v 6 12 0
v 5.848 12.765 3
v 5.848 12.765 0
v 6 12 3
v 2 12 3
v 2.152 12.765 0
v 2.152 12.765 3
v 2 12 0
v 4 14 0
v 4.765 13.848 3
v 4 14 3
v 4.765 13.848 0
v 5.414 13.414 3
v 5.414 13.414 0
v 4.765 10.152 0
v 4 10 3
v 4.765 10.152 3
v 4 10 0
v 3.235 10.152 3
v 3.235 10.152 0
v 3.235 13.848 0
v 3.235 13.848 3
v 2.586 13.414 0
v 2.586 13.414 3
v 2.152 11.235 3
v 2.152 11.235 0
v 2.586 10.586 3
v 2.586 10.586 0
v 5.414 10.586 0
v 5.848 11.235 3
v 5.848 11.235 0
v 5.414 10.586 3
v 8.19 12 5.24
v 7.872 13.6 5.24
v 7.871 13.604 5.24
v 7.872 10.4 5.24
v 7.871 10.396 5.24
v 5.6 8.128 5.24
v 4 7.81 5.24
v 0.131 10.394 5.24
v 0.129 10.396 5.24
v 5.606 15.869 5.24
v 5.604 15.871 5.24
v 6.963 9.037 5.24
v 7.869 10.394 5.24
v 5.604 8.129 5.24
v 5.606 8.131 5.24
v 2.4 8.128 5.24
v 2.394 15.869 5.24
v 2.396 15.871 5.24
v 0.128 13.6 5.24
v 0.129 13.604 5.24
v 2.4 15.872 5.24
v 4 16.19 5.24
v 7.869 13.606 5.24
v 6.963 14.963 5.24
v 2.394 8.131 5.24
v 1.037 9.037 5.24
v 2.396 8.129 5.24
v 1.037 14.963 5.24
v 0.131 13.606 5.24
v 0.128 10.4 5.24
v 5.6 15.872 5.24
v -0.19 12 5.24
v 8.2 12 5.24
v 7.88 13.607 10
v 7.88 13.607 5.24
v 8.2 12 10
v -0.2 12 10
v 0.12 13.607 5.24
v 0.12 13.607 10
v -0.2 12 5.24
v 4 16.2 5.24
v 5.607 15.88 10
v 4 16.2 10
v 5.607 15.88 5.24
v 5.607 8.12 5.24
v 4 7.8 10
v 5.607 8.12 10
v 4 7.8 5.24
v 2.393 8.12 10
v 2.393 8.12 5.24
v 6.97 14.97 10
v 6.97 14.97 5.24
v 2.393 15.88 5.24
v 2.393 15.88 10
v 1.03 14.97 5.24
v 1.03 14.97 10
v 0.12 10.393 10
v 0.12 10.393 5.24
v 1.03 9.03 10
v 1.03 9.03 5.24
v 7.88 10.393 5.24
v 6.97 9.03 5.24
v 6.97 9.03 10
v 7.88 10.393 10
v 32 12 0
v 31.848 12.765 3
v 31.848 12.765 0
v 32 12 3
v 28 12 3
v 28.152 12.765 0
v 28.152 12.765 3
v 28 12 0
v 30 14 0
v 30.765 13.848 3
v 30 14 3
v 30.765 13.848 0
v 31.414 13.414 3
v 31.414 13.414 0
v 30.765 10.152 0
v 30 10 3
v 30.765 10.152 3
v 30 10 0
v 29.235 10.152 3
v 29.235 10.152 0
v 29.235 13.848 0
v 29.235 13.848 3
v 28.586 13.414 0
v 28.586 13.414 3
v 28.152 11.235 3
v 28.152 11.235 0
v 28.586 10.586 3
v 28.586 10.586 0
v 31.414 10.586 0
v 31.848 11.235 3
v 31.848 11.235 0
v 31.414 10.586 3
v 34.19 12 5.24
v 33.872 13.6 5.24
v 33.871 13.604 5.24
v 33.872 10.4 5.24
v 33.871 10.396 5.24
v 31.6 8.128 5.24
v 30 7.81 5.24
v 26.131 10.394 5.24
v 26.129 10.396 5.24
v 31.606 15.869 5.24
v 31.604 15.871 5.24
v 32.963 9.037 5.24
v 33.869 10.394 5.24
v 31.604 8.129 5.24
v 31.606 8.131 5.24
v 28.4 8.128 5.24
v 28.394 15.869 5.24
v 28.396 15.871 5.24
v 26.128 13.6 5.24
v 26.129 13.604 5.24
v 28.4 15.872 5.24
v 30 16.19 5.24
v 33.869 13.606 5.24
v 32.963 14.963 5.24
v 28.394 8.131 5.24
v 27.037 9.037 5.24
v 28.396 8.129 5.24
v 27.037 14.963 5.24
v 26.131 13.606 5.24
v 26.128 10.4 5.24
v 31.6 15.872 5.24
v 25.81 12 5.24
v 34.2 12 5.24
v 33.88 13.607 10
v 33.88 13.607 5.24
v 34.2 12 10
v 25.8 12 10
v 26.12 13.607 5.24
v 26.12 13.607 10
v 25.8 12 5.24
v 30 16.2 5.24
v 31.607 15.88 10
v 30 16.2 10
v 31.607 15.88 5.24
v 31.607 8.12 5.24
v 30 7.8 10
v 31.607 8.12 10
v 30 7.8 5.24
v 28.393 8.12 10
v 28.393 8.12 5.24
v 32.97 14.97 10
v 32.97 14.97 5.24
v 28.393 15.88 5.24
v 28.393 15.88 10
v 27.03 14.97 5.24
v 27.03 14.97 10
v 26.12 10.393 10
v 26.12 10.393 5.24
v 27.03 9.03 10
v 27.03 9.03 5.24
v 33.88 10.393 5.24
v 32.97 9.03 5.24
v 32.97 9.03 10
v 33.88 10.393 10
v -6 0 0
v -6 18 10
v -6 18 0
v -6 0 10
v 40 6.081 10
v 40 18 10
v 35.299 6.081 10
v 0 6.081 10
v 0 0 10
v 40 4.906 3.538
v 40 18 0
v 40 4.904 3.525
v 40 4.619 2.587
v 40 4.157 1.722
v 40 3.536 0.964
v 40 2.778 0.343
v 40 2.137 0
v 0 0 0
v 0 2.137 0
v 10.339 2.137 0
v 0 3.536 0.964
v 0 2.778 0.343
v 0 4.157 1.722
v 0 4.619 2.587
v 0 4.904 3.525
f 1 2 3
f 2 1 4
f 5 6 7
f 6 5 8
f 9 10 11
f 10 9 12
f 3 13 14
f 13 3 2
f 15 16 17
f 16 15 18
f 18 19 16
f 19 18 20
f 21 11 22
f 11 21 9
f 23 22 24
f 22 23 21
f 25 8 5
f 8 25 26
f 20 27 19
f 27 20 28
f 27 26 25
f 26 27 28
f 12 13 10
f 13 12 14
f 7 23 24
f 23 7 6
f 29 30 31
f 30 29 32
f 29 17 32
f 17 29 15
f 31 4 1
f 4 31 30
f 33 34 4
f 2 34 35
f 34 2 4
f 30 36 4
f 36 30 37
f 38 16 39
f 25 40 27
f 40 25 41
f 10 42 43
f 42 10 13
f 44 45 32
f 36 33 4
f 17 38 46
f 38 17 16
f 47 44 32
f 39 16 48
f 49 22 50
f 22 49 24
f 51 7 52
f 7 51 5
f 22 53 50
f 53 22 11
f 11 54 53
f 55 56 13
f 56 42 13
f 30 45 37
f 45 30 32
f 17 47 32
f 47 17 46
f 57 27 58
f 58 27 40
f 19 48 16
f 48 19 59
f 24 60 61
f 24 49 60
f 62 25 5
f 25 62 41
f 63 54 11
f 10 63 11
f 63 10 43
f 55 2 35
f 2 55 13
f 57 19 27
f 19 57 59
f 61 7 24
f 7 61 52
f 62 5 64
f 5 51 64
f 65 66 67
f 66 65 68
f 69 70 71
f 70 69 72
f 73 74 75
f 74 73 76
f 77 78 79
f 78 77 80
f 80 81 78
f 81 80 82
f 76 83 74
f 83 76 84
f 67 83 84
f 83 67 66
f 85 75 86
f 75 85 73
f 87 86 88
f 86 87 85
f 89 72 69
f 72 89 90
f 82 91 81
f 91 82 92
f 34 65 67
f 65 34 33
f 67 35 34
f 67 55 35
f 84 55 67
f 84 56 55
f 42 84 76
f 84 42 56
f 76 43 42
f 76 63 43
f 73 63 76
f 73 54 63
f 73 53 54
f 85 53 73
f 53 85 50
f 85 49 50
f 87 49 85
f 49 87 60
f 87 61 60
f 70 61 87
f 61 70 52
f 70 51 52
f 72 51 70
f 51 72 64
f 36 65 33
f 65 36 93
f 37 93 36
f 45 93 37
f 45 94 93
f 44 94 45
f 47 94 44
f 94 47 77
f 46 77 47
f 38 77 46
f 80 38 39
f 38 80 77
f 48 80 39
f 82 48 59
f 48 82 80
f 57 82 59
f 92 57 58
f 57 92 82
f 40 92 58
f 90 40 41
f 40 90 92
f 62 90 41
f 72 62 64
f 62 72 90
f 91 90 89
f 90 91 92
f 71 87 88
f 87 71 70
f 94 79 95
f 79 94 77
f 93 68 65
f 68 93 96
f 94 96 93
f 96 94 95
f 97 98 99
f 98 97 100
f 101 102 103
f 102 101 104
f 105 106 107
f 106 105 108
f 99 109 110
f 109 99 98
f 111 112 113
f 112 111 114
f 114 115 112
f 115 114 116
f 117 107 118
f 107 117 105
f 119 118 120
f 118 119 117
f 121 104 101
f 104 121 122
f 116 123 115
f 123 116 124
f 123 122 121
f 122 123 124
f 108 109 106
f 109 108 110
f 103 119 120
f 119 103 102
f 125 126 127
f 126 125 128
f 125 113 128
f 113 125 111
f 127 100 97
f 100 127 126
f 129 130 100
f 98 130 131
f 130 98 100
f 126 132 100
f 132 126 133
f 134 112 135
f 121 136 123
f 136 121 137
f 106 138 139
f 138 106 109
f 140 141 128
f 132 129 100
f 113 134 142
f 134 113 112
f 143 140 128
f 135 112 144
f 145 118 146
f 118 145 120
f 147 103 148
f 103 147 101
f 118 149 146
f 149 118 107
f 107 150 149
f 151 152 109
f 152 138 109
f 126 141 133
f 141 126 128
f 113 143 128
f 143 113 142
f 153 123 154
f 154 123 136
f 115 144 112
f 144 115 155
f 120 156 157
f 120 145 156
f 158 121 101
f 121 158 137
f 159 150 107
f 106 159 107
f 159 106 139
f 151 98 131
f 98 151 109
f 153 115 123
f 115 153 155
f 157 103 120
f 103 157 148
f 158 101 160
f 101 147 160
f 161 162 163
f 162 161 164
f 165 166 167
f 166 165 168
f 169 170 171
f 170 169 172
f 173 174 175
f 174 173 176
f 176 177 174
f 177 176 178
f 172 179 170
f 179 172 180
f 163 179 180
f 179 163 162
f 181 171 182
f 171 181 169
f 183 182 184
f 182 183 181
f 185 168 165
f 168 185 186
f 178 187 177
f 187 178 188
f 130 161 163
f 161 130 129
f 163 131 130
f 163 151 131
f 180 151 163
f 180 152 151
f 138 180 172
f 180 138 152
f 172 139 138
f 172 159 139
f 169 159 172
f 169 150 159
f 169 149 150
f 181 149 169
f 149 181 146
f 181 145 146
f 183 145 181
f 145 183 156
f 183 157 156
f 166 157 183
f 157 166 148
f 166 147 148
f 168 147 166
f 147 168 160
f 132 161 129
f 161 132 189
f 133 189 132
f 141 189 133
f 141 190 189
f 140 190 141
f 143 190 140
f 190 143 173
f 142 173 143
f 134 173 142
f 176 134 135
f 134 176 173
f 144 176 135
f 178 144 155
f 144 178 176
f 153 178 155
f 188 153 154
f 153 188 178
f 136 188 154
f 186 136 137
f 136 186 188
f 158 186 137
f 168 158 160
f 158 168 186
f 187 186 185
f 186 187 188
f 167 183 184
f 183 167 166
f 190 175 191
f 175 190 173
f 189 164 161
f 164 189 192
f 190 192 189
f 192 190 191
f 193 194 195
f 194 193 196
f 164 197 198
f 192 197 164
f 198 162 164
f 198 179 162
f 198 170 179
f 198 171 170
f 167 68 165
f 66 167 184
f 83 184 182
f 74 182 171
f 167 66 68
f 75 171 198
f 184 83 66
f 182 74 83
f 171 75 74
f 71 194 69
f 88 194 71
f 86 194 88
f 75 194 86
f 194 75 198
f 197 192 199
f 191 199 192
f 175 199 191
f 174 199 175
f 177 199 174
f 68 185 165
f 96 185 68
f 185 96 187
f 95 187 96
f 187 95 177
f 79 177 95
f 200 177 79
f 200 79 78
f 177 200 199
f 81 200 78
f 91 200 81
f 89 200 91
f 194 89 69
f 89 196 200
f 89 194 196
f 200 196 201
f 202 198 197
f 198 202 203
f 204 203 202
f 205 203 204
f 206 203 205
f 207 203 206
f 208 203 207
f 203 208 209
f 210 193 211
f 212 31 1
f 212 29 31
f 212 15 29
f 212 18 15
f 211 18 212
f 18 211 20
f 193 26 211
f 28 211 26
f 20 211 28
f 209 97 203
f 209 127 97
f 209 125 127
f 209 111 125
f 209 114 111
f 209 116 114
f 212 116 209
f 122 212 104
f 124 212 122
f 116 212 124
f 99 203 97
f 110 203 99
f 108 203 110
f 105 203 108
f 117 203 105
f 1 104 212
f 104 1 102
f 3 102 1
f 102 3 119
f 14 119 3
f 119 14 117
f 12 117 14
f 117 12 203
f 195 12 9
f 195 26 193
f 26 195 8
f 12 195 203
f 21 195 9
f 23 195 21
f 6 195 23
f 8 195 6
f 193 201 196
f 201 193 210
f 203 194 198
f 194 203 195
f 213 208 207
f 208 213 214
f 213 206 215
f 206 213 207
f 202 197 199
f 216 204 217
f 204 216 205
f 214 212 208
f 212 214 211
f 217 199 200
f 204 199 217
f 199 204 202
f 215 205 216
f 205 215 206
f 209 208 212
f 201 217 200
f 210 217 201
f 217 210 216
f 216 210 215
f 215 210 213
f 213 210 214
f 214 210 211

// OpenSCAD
// file: pedestal.scad
// CoreBeam Laser Engraver
//
// Licence: CC BY-SA 3.0, http://creativecommons.org/licenses/by-sa/3.0/
// Author: Dominik Scholz <schlotzz@schlotzz.com>
// visit: http://www.schlotzz.com
//
// pedestal


// include files
include <common.scad>;



// pedestal for wooden frame
module pedestal()
{
	width = 40;
	height = 65;
	bottom_width = 20;
	depth = 40;
	radius = 5;
	thickness = 5;

	difference()
	{
		// base
		roundedTrapezoid([width, height, depth], radius, bottom_width);

		// middle cutout
		translate([0, thickness, -epsilon])
			roundedTrapezoid(
				[width - thickness * 2, height - thickness * 2, depth + 2 * epsilon],
				radius / 2,
				bottom_width - 2 * thickness
			);
		
		// side cutout
		translate([0, height / 2, depth / 2])
			rotate([0, 90, 0])
				cylinder(r = (depth - thickness * 3) / 2, h = width + 2 * epsilon, center = true, $fn = 64);

		// mounting holes for wood screws
		for (i = [-10, 10])
			translate([0, height, depth / 2 + i])
				rotate([90, 0, 0])
					woodscrew_cutout();
	}
}
// file: common.scad
// CoreBeam Laser Engraver
//
// Licence: CC BY-SA 3.0, http://creativecommons.org/licenses/by-sa/3.0/
// Author: Dominik Scholz <schlotzz@schlotzz.com>
// visit: http://www.schlotzz.com
//
// definitions of common values



// avoid openscad artefacts in preview
epsilon = 0.01;

// increase this if your slicer or printer make holes too tight
extra_radius = 0.1;

// major diameter of metric 3mm thread
m3_major = 2.85;
m3_radius = m3_major / 2 + extra_radius;
m3_wide_radius = m3_major / 2 + extra_radius + 0.2;
m3_small_radius = m3_radius - 0.1;

// diameter of metric 3mm hexnut screw head
m3_head_radius = 3 + extra_radius;

// nema 17 dimensions
nema17_width = 42.3;
nema17_hole_offsets = [
	[-15.5, -15.5, 0],
	[-15.5,  15.5, 0],
	[ 15.5, -15.5, 0],
	[ 15.5,  15.5, 0]
];


// hole for retaining a m3 hexnut
module m3_hexnut_cutout(additional_height = 0)
{
	cylinder(r = 3.15 + 2.5 * extra_radius, h = 2.5 + 3 * extra_radius + additional_height, $fn = 6);
}


// rounded rectangle
module roundedRectangle(size, radius)
{
	cube([size[0], size[1] - radius * 2, size[2]], true);
	cube([size[0] - radius * 2, size[1], size[2]], true);

	for (x = [-size[0] / 2 + radius, size[0] / 2 - radius])
		for (y = [-size[1] / 2 + radius, size[1] / 2 - radius])
			translate([x, y, 0])
				cylinder(size[2], radius, radius, true);
}


// rounded trapezoid
module roundedTrapezoid(size, radius, bottom)
{
	hull()
	{
		// bottom
		for (i = [[-bottom / 2 + radius, radius, 0], [bottom / 2 - radius, radius, 0]])
			translate(i)
				cylinder(r = radius, h = size[2], $fn = 32);

		// top
		for (i = [[-size[0] / 2 + radius, size[1] - radius, 0], [size[0] / 2 - radius, size[1] - radius, 0]])
			translate(i)
				cylinder(r = radius, h = size[2], $fn = 32);


	}

}


// hole for wood screw 4x15, countersunk head
module woodscrew_cutout()
{
	translate([0, 0, -epsilon])
		cylinder(r = 2.0, h = 3 + epsilon * 2, $fn = 16);

	translate([0, 0, 3])
		cylinder(r1 = 2.0, r2 = 4.2, h = 2.25, $fn = 16);

	translate([0, 0, 5.25 - epsilon])
		cylinder(r = 4.2, h = 30, $fn = 16);
}
// main file
// CoreBeam Laser Engraver
//
// Licence: CC BY-SA 3.0, http://creativecommons.org/licenses/by-sa/3.0/
// Author: Dominik Scholz <schlotzz@schlotzz.com>
// visit: http://www.schlotzz.com
//
// footplate-stopper for pedestal


// include files
include <common.scad>;
include <pedestal.scad>;



// stopper for pedestal
module pedestal_stopper(flip = false)
{
    
    pedestal_width = 40;
    pedestal_depth = 40;
    pedestal_height = 65;
    pedestal_bottom_width = 20;
    pedestal_radius = 5;
    
    top_thickness = 13;
    side_thickness = 6;
	width = 40;
    depth = top_thickness + pedestal_radius;
	height = 10;
    
    mirror([flip ? 1 : 0, 0, 0])
    {
        difference()
        {
            
            // base
            translate([-side_thickness, 0, 0])
                cube([width + side_thickness, depth, height]);
            
            // pedestal cutout
            translate([0, -pedestal_bottom_width / 2 + pedestal_radius, -0.5])
                rotate([90, 0, 90])
                    roundedTrapezoid(
                        [pedestal_width, pedestal_height, pedestal_depth + epsilon],
                        pedestal_radius,
                        pedestal_bottom_width
                    );

            // mounting holes for wood screws
            for (x = [-side_thickness + 10, width - 10])
                translate([x, depth - 6, 0])
                    woodscrew_cutout();
            
        }
        

        // pedestal
        %translate([0, -pedestal_bottom_width / 2 + pedestal_radius, 0])
            rotate([90, 0, 90])
                pedestal();
    }
    
}

pedestal_stopper();
